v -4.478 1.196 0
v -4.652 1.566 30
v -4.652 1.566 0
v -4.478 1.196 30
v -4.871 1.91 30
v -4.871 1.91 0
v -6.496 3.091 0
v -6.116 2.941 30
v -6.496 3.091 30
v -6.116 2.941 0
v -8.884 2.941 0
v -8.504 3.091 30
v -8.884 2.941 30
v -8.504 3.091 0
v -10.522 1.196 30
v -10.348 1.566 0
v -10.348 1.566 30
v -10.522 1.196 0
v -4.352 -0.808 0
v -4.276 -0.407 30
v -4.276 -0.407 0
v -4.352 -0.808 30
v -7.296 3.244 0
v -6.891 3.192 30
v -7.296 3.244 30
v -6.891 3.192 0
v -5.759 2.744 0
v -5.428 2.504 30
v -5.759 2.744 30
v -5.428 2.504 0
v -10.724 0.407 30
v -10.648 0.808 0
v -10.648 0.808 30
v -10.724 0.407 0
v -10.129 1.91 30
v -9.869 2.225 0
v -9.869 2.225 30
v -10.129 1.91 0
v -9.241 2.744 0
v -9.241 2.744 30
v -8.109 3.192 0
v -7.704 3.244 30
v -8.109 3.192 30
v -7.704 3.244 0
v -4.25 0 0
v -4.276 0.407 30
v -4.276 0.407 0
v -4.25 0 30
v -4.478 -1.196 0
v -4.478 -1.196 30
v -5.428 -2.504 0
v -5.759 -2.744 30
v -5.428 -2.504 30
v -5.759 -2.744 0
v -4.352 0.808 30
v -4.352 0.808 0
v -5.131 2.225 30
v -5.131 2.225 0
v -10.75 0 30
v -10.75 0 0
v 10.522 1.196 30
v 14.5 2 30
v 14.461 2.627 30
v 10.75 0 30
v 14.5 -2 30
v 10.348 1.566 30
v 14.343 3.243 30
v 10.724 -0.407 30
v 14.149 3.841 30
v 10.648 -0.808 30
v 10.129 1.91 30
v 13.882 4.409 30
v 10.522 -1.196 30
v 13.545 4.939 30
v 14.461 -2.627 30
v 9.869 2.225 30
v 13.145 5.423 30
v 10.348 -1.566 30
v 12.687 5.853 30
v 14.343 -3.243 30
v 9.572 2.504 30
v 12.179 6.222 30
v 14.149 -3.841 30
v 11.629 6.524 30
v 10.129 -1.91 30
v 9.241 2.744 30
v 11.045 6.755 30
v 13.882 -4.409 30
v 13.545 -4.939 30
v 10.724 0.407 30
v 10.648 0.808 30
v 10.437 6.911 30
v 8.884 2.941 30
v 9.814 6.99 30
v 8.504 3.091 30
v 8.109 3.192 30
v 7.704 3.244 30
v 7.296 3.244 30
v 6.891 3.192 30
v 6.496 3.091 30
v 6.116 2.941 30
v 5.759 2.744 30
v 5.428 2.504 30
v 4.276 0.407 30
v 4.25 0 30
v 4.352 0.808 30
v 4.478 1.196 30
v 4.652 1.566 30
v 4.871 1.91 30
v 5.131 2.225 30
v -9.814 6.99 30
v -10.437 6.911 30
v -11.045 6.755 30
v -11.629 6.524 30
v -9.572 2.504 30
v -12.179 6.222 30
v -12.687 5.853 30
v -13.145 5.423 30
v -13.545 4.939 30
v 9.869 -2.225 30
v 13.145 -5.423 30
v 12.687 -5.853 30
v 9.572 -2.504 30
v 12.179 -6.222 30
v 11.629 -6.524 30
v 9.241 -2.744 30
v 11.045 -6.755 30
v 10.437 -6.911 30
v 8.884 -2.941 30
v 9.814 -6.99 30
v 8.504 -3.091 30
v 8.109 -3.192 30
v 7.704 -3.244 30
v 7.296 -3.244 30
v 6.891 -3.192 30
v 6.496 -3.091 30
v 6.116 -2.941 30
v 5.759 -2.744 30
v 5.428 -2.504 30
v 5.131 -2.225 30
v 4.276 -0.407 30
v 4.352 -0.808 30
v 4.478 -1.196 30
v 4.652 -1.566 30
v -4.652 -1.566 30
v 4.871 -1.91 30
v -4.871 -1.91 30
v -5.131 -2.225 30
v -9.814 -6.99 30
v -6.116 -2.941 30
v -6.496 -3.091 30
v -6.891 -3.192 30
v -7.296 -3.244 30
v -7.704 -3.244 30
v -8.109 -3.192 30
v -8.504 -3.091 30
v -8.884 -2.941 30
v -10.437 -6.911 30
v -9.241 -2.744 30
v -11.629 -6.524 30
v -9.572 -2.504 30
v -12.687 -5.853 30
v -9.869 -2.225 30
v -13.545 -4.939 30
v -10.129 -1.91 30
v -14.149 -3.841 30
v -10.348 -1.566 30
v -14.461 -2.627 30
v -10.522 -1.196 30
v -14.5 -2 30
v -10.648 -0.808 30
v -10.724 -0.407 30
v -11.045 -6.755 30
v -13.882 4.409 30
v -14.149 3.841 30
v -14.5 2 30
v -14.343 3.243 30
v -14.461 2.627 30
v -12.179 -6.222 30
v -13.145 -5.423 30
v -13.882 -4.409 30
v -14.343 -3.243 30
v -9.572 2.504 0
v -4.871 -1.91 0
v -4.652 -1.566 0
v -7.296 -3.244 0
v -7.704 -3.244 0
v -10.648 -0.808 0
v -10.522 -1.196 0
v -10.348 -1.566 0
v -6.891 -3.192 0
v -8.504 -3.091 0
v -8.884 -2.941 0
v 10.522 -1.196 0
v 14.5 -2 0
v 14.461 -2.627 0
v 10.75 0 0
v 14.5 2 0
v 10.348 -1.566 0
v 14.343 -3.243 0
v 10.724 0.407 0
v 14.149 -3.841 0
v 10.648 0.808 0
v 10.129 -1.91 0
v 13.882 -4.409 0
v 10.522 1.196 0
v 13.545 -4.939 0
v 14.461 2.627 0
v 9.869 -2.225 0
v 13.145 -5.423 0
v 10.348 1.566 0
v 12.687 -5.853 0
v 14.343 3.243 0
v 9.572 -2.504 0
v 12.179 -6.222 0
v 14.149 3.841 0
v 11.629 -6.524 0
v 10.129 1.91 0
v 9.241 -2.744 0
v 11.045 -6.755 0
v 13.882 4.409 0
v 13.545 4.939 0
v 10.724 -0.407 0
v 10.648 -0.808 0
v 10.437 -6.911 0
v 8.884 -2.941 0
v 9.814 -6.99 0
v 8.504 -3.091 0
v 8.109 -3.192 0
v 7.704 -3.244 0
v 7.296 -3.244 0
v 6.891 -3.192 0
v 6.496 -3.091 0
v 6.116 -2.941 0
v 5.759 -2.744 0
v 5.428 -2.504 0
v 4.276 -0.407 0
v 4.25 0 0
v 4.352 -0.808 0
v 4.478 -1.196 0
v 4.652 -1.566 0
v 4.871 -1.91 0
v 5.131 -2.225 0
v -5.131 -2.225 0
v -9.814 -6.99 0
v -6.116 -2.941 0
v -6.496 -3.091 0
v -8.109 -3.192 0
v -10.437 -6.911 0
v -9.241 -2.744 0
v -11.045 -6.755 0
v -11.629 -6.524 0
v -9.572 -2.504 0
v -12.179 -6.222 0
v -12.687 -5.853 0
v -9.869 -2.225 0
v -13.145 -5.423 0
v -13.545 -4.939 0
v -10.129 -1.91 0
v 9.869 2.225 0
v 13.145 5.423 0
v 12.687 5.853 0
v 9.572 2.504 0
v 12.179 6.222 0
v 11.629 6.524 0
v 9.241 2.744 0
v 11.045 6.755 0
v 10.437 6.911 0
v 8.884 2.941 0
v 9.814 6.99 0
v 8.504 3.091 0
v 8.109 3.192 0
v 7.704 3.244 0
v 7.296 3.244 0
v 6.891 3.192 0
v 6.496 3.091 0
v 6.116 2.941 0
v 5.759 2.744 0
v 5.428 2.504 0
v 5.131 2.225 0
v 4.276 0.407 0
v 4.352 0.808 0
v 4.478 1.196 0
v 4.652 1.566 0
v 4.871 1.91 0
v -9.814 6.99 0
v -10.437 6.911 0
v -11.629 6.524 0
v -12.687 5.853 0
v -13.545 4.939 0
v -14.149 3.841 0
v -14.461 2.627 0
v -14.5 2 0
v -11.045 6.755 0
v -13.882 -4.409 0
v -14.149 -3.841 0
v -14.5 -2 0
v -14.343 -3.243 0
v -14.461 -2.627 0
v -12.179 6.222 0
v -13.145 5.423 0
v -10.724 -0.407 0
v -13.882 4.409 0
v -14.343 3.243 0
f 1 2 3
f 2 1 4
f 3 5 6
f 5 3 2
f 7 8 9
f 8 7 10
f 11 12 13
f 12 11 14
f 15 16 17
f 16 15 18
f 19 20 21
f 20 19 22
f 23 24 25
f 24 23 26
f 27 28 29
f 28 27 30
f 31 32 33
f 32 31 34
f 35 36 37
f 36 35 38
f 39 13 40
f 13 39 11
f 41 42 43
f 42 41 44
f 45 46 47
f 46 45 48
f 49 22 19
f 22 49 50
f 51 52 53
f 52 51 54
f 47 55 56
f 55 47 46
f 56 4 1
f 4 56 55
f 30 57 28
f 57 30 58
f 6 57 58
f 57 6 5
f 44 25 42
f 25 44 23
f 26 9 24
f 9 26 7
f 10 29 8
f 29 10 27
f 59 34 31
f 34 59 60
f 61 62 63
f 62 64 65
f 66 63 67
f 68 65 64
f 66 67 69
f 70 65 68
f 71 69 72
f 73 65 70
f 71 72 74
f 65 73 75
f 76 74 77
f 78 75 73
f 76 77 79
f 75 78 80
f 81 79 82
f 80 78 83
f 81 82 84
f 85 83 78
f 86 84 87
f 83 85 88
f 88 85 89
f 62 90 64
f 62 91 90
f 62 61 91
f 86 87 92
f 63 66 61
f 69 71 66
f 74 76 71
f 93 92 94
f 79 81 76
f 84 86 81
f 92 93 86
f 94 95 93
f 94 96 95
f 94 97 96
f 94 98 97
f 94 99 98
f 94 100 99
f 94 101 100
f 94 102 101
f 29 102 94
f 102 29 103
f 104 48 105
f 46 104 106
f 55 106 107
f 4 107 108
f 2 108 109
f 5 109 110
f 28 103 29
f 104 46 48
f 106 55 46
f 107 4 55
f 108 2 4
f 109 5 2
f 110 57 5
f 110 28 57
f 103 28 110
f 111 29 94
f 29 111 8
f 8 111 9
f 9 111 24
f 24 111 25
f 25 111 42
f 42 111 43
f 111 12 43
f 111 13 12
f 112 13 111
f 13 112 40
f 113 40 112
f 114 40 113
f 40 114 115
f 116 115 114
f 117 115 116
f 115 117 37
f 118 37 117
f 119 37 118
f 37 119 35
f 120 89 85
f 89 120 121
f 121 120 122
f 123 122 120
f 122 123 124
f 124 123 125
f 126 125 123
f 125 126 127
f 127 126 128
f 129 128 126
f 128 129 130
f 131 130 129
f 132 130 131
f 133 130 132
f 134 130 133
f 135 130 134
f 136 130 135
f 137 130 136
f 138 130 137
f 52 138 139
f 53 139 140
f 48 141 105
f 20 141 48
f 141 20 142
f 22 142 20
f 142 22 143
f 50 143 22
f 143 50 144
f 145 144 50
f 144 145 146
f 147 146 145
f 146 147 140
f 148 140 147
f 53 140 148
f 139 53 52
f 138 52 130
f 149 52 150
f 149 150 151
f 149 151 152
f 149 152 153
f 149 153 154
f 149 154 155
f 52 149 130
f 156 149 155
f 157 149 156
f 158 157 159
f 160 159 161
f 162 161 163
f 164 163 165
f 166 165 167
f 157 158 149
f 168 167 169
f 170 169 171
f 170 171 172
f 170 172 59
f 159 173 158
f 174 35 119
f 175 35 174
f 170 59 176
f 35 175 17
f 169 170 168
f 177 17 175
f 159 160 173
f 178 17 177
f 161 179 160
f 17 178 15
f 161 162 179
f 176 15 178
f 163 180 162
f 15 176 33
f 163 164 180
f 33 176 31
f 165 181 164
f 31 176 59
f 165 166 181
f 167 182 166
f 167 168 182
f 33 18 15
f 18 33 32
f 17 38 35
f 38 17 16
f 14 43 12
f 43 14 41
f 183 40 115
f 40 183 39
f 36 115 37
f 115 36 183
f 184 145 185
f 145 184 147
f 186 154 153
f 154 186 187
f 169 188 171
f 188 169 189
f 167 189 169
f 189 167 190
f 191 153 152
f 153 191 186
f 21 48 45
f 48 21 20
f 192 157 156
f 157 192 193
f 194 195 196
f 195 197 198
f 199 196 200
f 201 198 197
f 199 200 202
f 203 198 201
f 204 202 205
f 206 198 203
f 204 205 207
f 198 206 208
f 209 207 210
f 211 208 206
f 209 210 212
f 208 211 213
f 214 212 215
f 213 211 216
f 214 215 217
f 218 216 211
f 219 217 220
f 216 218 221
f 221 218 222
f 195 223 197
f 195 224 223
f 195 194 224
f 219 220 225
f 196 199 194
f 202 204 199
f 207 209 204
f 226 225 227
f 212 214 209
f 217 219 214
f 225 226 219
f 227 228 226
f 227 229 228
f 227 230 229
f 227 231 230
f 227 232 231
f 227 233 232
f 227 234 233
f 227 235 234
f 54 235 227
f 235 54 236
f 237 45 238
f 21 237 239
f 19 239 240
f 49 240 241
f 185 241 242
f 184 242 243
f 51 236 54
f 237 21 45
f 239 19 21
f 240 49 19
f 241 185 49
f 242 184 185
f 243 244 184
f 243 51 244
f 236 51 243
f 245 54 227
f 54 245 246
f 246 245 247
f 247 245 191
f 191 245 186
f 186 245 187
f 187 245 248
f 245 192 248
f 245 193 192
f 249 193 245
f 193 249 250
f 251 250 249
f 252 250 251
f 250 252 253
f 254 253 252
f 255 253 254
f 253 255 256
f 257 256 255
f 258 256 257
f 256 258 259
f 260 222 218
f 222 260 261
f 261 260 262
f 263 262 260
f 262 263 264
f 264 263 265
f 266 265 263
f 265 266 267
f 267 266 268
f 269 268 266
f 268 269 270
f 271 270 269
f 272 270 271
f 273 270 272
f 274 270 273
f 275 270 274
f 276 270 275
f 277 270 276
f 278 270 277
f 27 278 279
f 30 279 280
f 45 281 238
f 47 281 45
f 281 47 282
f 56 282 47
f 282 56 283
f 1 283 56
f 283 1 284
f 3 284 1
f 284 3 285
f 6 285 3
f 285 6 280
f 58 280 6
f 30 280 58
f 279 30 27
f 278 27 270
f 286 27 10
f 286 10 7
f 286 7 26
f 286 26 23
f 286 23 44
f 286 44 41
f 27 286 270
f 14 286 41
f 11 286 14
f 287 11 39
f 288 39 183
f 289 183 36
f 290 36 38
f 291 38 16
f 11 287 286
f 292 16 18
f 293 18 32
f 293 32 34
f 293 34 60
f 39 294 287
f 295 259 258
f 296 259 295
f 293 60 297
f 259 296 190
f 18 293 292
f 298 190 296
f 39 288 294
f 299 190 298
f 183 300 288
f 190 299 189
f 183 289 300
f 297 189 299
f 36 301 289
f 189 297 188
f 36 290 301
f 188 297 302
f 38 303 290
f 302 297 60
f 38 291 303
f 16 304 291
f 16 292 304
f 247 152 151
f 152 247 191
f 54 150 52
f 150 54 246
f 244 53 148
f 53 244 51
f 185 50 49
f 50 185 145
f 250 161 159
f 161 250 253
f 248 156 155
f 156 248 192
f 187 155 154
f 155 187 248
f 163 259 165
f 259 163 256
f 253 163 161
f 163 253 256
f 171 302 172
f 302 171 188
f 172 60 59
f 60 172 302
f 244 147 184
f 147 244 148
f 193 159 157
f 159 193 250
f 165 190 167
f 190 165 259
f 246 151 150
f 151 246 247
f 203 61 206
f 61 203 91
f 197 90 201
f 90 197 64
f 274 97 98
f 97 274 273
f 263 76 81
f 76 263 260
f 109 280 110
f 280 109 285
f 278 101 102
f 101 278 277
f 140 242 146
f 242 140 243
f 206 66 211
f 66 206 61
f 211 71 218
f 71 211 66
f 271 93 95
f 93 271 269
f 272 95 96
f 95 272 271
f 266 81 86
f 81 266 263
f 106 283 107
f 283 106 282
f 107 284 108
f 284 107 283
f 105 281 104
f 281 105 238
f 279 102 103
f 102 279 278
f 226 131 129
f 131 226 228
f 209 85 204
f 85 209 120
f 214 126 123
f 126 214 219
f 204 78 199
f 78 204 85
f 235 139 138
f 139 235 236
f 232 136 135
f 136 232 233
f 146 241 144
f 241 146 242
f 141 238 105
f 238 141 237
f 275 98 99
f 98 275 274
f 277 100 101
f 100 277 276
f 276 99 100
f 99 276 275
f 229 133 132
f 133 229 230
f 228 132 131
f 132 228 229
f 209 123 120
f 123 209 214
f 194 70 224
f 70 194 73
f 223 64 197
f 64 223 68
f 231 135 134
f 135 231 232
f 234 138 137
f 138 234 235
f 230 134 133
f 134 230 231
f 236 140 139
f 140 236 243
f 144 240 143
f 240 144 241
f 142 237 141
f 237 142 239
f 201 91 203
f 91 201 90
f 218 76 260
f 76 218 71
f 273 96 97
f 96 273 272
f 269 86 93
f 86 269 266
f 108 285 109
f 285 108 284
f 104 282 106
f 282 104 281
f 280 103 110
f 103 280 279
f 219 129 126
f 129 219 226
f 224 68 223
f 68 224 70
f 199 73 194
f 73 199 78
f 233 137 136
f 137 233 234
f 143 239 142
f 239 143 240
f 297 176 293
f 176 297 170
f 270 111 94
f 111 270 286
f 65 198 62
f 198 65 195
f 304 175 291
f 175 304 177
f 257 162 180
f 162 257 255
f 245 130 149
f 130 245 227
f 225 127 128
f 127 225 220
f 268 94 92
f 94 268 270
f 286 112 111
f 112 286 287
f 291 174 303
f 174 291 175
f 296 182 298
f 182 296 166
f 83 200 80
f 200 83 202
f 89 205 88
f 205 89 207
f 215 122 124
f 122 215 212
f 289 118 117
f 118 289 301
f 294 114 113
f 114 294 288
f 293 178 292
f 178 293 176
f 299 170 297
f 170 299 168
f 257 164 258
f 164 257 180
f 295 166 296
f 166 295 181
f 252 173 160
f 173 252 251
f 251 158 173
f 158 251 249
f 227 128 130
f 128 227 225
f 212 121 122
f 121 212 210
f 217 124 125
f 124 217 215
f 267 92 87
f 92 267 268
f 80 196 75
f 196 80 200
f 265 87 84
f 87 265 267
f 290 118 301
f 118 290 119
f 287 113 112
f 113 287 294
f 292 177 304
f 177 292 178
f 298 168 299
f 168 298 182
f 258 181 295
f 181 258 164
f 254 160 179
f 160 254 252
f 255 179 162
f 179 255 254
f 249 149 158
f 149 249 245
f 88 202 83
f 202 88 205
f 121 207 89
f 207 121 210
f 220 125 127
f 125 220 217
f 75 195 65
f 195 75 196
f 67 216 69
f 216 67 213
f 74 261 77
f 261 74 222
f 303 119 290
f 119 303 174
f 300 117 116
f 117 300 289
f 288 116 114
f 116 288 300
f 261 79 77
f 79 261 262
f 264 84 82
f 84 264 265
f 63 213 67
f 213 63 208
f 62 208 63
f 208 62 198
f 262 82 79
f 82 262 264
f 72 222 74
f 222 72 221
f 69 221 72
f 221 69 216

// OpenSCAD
$fn = 50;


difference() {
	union() {
		hull() {
			translate(v = [-9.5000000000, 2.0000000000, 0]) {
				cylinder(h = 30, r = 5);
			}
			translate(v = [9.5000000000, 2.0000000000, 0]) {
				cylinder(h = 30, r = 5);
			}
			translate(v = [-9.5000000000, -2.0000000000, 0]) {
				cylinder(h = 30, r = 5);
			}
			translate(v = [9.5000000000, -2.0000000000, 0]) {
				cylinder(h = 30, r = 5);
			}
		}
	}
	union() {
		translate(v = [-7.5000000000, 0.0000000000, -100.0000000000]) {
			cylinder(h = 200, r = 3.2500000000);
		}
		translate(v = [-7.5000000000, 0.0000000000, -100.0000000000]) {
			cylinder(h = 200, r = 3.2500000000);
		}
		translate(v = [7.5000000000, 0.0000000000, -100.0000000000]) {
			cylinder(h = 200, r = 3.2500000000);
		}
		translate(v = [7.5000000000, 0.0000000000, -100.0000000000]) {
			cylinder(h = 200, r = 3.2500000000);
		}
	}
}
